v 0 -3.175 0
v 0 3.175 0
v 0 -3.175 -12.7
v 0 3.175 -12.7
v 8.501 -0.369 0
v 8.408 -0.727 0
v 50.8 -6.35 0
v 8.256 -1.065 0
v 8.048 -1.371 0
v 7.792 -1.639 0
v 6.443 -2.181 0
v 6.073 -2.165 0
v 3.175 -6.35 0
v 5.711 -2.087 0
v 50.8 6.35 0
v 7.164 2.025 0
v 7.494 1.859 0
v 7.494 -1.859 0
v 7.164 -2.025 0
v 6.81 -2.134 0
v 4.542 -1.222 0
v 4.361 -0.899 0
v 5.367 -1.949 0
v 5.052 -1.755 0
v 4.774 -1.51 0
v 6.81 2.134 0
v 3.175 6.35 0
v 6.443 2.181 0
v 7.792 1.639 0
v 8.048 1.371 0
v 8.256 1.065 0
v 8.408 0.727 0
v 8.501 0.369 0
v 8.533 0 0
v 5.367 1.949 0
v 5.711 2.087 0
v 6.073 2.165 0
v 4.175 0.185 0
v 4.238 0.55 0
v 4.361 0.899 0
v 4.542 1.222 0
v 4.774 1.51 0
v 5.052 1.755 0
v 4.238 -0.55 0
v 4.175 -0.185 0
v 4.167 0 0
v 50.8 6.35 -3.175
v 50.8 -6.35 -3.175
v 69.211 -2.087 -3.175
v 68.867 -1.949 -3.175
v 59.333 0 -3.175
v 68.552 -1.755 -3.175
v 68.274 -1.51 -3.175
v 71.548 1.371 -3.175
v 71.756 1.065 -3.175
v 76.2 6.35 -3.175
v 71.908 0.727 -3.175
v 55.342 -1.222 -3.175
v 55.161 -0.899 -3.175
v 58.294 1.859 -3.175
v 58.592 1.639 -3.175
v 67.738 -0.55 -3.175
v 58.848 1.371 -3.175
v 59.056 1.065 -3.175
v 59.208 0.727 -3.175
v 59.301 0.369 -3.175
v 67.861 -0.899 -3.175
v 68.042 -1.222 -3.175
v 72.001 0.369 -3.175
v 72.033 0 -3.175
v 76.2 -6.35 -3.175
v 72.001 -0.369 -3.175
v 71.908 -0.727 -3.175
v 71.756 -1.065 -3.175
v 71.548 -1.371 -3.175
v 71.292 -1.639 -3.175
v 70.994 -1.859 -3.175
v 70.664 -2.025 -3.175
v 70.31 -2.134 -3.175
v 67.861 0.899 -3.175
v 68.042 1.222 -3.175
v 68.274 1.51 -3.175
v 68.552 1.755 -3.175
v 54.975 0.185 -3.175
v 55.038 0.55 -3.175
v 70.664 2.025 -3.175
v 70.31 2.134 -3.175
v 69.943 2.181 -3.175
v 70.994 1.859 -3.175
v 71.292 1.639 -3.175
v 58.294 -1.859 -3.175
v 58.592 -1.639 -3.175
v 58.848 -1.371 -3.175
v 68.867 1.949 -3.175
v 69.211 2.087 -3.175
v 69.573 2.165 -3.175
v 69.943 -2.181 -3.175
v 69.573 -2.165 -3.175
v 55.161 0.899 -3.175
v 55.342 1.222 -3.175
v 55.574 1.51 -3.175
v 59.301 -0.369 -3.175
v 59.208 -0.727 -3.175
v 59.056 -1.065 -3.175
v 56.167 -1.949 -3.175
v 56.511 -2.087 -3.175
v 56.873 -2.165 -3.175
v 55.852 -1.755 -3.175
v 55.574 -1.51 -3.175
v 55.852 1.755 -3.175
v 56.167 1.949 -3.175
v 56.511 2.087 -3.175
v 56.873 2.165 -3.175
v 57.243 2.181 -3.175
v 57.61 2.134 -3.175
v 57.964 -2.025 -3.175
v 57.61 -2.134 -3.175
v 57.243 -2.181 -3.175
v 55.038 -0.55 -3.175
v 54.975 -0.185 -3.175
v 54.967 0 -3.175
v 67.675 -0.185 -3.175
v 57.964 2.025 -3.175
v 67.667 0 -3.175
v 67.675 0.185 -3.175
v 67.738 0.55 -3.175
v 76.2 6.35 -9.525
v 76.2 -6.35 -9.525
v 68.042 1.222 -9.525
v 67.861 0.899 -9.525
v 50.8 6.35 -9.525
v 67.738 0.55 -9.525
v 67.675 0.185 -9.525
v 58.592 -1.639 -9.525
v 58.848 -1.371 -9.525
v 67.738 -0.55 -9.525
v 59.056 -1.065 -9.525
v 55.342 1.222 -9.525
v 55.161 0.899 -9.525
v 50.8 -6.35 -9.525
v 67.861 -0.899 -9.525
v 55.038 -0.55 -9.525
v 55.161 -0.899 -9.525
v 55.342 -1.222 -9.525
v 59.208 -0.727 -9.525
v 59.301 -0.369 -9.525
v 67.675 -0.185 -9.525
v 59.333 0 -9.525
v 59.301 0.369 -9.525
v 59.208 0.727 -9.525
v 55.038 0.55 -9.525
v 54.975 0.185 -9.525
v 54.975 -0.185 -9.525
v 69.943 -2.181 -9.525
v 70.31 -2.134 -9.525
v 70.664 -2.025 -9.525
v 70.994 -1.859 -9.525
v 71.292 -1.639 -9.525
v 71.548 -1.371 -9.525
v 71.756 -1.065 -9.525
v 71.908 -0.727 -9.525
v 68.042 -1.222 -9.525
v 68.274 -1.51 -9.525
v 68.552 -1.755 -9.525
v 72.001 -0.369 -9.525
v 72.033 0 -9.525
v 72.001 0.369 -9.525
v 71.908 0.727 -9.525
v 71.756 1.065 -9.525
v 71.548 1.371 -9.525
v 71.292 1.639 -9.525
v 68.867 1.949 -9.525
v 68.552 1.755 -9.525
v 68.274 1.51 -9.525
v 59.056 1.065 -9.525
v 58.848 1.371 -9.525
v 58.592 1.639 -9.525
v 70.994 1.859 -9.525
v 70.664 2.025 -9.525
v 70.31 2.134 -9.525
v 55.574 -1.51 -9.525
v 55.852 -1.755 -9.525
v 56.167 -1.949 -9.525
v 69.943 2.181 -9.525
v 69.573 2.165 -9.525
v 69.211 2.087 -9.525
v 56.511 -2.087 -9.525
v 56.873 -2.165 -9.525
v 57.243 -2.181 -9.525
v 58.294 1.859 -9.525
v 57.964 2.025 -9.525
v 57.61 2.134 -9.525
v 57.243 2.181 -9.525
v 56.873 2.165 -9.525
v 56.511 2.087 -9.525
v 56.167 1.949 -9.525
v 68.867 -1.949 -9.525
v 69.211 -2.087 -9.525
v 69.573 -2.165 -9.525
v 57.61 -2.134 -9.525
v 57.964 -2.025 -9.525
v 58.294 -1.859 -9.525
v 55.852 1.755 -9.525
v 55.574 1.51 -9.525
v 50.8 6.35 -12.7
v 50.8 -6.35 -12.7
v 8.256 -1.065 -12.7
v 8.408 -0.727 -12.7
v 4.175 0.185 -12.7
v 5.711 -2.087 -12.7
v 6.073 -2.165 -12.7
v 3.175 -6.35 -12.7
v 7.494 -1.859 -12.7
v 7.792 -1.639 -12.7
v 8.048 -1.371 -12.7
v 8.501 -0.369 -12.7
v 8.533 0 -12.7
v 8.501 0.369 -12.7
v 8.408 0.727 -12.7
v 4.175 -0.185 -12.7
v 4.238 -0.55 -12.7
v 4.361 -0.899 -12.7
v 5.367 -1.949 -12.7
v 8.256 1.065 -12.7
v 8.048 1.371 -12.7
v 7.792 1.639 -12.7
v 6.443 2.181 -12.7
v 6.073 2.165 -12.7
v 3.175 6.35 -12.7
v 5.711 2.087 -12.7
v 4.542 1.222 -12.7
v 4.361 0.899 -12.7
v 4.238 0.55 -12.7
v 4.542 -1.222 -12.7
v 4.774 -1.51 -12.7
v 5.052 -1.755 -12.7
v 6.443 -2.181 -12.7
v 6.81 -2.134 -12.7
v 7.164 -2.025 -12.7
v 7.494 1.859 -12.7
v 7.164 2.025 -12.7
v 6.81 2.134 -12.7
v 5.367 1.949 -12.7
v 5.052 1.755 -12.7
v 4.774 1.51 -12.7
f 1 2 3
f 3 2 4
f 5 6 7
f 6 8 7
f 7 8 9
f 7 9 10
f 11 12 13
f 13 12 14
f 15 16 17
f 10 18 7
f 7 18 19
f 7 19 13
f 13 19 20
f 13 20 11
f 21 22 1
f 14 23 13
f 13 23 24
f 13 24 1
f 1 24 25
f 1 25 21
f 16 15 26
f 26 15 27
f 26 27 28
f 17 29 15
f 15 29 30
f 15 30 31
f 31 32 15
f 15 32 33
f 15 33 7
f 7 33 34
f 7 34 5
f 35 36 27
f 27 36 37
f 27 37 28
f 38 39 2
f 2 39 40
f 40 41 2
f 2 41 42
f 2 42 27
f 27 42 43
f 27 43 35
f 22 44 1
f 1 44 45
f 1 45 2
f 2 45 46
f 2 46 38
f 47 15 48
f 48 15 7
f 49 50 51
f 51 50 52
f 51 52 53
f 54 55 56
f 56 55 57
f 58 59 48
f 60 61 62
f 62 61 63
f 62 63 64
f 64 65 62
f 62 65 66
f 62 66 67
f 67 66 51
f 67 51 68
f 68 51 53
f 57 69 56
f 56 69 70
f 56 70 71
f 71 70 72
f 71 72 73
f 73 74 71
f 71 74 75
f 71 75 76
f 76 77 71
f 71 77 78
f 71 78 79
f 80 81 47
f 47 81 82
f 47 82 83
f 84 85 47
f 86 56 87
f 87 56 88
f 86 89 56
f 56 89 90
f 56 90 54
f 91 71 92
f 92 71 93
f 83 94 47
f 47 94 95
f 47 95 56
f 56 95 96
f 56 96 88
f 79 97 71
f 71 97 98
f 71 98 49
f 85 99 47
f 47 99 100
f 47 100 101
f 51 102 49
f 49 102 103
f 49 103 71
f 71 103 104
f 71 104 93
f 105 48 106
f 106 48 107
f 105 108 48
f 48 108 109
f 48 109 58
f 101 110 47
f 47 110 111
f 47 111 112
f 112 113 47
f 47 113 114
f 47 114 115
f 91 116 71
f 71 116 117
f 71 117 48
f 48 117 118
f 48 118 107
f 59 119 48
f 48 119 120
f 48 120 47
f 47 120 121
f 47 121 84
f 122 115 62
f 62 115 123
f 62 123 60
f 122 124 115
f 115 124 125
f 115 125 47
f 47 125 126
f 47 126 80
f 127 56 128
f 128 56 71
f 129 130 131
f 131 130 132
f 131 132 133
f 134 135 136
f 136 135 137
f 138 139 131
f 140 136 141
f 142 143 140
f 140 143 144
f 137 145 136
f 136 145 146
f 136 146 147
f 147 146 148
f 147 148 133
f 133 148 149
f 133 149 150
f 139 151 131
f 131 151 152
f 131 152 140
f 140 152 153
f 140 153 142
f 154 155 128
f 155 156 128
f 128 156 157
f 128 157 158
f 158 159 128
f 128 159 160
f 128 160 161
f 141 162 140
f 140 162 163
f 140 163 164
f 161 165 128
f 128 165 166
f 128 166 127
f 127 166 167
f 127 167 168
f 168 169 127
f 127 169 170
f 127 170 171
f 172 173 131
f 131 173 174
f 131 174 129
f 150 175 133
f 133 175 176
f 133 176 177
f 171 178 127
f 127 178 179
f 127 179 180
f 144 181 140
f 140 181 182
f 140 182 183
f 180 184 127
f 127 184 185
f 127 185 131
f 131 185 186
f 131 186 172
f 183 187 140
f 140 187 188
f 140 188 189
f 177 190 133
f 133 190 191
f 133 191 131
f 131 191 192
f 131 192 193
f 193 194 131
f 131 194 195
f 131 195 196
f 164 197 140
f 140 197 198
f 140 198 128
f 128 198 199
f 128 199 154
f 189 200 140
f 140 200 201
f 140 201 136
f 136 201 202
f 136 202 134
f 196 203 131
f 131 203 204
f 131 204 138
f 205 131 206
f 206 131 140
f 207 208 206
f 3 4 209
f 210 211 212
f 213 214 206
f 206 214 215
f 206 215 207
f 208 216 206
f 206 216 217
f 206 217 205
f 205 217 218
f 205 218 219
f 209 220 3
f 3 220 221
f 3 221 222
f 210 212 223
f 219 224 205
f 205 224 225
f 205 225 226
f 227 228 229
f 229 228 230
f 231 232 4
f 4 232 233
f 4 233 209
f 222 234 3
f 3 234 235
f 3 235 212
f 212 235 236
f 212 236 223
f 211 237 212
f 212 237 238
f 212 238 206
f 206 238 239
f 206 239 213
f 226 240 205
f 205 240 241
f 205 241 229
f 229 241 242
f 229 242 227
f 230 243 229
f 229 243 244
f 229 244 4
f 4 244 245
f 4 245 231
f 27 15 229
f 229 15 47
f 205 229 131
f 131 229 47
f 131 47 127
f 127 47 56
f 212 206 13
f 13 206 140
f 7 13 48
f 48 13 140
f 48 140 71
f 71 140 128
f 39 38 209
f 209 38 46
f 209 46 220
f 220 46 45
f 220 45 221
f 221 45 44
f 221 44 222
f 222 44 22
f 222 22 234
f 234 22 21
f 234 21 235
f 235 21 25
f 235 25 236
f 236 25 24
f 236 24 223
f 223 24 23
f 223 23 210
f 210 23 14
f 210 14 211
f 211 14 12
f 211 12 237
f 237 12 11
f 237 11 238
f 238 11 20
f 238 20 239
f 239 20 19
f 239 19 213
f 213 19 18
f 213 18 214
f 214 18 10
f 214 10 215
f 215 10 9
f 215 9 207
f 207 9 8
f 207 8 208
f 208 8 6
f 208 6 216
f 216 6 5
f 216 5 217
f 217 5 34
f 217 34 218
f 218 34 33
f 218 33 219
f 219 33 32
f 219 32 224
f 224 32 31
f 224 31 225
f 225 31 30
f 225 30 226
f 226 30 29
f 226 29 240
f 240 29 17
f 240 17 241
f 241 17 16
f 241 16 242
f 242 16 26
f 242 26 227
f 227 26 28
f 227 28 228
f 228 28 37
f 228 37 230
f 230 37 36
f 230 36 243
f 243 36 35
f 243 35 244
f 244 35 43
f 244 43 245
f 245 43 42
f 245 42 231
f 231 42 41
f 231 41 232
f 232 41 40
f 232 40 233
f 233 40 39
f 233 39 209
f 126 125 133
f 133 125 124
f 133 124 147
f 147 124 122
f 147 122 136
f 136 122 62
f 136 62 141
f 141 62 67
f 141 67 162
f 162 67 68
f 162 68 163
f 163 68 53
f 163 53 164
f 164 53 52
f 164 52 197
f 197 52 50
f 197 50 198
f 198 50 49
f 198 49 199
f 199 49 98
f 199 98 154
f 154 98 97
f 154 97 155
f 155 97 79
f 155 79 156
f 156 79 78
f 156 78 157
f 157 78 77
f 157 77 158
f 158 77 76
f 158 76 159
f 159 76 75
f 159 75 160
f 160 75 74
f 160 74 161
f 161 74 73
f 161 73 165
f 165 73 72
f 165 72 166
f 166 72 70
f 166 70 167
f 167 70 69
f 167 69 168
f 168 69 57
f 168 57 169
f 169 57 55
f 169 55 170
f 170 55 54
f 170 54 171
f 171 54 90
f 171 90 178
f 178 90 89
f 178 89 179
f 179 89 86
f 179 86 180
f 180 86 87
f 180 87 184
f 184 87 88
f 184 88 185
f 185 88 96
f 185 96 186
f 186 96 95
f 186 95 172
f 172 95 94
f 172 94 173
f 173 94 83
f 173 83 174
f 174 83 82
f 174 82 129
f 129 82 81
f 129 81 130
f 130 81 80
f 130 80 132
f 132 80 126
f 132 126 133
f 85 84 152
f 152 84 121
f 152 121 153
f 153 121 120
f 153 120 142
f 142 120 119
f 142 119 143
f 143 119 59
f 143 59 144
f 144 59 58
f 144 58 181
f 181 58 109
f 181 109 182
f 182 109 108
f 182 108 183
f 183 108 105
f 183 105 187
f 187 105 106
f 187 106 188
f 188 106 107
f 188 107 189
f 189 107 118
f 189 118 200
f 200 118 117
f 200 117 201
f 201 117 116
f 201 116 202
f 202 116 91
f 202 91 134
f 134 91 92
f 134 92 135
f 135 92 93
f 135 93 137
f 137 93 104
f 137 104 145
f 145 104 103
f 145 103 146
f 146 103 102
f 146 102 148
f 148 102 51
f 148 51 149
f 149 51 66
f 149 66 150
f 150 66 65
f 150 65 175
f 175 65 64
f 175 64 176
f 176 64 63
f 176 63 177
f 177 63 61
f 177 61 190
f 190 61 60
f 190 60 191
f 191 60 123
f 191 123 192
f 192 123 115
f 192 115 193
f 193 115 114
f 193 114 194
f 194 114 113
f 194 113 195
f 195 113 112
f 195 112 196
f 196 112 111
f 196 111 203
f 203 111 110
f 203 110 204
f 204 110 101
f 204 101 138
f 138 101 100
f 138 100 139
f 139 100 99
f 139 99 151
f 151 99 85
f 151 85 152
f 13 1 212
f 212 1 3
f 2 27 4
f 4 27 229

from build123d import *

# Parameters (mm, degrees)
BOSS_EXTRUDE1_DEPTH     = 6.35
CUT_EXTRUDE1_DEPTH      = 78.51162816
CUT_EXTRUDE1_DEPTH_BACK = 78.51162816
SKETCH2_R               = 2.1828125
CHAMFER1_SIZE           = 3.175


with BuildPart() as part:
    # Sketch1 → Boss-Extrude1 (new, symmetric)
    with BuildSketch(Plane(origin=(0, 0, 0), x_dir=(1, 0, 0), z_dir=(0, 1, 0))):
        Polygon((0, 0), (50.8, 0), (50.8, 3.175), (76.2, 3.175), (76.2, 9.525), (50.8, 9.525), (50.8, 12.7), (0, 12.7), align=None)
    extrude(amount=BOSS_EXTRUDE1_DEPTH, both=True)

    # Sketch2 → Cut-Extrude1 (cut, two sides: drawn at the far end of the back side and taken through both)
    with BuildSketch(Plane.XY.offset(-CUT_EXTRUDE1_DEPTH_BACK)):
        with Locations((6.35, 0)):
            Circle(SKETCH2_R)
        with Locations((57.15, 0)):
            Circle(SKETCH2_R)
        with Locations((69.85, 0)):
            Circle(SKETCH2_R)
    extrude(amount=CUT_EXTRUDE1_DEPTH + CUT_EXTRUDE1_DEPTH_BACK, mode=Mode.SUBTRACT)

    # Chamfer1
    chamfer1_edges = [part.edges().sort_by_distance(p)[0] for p in [
        (0, -6.35, -6.35),
        (0, 6.35, -6.35),
    ]]
    chamfer(chamfer1_edges, length=CHAMFER1_SIZE)


solid = part.part
